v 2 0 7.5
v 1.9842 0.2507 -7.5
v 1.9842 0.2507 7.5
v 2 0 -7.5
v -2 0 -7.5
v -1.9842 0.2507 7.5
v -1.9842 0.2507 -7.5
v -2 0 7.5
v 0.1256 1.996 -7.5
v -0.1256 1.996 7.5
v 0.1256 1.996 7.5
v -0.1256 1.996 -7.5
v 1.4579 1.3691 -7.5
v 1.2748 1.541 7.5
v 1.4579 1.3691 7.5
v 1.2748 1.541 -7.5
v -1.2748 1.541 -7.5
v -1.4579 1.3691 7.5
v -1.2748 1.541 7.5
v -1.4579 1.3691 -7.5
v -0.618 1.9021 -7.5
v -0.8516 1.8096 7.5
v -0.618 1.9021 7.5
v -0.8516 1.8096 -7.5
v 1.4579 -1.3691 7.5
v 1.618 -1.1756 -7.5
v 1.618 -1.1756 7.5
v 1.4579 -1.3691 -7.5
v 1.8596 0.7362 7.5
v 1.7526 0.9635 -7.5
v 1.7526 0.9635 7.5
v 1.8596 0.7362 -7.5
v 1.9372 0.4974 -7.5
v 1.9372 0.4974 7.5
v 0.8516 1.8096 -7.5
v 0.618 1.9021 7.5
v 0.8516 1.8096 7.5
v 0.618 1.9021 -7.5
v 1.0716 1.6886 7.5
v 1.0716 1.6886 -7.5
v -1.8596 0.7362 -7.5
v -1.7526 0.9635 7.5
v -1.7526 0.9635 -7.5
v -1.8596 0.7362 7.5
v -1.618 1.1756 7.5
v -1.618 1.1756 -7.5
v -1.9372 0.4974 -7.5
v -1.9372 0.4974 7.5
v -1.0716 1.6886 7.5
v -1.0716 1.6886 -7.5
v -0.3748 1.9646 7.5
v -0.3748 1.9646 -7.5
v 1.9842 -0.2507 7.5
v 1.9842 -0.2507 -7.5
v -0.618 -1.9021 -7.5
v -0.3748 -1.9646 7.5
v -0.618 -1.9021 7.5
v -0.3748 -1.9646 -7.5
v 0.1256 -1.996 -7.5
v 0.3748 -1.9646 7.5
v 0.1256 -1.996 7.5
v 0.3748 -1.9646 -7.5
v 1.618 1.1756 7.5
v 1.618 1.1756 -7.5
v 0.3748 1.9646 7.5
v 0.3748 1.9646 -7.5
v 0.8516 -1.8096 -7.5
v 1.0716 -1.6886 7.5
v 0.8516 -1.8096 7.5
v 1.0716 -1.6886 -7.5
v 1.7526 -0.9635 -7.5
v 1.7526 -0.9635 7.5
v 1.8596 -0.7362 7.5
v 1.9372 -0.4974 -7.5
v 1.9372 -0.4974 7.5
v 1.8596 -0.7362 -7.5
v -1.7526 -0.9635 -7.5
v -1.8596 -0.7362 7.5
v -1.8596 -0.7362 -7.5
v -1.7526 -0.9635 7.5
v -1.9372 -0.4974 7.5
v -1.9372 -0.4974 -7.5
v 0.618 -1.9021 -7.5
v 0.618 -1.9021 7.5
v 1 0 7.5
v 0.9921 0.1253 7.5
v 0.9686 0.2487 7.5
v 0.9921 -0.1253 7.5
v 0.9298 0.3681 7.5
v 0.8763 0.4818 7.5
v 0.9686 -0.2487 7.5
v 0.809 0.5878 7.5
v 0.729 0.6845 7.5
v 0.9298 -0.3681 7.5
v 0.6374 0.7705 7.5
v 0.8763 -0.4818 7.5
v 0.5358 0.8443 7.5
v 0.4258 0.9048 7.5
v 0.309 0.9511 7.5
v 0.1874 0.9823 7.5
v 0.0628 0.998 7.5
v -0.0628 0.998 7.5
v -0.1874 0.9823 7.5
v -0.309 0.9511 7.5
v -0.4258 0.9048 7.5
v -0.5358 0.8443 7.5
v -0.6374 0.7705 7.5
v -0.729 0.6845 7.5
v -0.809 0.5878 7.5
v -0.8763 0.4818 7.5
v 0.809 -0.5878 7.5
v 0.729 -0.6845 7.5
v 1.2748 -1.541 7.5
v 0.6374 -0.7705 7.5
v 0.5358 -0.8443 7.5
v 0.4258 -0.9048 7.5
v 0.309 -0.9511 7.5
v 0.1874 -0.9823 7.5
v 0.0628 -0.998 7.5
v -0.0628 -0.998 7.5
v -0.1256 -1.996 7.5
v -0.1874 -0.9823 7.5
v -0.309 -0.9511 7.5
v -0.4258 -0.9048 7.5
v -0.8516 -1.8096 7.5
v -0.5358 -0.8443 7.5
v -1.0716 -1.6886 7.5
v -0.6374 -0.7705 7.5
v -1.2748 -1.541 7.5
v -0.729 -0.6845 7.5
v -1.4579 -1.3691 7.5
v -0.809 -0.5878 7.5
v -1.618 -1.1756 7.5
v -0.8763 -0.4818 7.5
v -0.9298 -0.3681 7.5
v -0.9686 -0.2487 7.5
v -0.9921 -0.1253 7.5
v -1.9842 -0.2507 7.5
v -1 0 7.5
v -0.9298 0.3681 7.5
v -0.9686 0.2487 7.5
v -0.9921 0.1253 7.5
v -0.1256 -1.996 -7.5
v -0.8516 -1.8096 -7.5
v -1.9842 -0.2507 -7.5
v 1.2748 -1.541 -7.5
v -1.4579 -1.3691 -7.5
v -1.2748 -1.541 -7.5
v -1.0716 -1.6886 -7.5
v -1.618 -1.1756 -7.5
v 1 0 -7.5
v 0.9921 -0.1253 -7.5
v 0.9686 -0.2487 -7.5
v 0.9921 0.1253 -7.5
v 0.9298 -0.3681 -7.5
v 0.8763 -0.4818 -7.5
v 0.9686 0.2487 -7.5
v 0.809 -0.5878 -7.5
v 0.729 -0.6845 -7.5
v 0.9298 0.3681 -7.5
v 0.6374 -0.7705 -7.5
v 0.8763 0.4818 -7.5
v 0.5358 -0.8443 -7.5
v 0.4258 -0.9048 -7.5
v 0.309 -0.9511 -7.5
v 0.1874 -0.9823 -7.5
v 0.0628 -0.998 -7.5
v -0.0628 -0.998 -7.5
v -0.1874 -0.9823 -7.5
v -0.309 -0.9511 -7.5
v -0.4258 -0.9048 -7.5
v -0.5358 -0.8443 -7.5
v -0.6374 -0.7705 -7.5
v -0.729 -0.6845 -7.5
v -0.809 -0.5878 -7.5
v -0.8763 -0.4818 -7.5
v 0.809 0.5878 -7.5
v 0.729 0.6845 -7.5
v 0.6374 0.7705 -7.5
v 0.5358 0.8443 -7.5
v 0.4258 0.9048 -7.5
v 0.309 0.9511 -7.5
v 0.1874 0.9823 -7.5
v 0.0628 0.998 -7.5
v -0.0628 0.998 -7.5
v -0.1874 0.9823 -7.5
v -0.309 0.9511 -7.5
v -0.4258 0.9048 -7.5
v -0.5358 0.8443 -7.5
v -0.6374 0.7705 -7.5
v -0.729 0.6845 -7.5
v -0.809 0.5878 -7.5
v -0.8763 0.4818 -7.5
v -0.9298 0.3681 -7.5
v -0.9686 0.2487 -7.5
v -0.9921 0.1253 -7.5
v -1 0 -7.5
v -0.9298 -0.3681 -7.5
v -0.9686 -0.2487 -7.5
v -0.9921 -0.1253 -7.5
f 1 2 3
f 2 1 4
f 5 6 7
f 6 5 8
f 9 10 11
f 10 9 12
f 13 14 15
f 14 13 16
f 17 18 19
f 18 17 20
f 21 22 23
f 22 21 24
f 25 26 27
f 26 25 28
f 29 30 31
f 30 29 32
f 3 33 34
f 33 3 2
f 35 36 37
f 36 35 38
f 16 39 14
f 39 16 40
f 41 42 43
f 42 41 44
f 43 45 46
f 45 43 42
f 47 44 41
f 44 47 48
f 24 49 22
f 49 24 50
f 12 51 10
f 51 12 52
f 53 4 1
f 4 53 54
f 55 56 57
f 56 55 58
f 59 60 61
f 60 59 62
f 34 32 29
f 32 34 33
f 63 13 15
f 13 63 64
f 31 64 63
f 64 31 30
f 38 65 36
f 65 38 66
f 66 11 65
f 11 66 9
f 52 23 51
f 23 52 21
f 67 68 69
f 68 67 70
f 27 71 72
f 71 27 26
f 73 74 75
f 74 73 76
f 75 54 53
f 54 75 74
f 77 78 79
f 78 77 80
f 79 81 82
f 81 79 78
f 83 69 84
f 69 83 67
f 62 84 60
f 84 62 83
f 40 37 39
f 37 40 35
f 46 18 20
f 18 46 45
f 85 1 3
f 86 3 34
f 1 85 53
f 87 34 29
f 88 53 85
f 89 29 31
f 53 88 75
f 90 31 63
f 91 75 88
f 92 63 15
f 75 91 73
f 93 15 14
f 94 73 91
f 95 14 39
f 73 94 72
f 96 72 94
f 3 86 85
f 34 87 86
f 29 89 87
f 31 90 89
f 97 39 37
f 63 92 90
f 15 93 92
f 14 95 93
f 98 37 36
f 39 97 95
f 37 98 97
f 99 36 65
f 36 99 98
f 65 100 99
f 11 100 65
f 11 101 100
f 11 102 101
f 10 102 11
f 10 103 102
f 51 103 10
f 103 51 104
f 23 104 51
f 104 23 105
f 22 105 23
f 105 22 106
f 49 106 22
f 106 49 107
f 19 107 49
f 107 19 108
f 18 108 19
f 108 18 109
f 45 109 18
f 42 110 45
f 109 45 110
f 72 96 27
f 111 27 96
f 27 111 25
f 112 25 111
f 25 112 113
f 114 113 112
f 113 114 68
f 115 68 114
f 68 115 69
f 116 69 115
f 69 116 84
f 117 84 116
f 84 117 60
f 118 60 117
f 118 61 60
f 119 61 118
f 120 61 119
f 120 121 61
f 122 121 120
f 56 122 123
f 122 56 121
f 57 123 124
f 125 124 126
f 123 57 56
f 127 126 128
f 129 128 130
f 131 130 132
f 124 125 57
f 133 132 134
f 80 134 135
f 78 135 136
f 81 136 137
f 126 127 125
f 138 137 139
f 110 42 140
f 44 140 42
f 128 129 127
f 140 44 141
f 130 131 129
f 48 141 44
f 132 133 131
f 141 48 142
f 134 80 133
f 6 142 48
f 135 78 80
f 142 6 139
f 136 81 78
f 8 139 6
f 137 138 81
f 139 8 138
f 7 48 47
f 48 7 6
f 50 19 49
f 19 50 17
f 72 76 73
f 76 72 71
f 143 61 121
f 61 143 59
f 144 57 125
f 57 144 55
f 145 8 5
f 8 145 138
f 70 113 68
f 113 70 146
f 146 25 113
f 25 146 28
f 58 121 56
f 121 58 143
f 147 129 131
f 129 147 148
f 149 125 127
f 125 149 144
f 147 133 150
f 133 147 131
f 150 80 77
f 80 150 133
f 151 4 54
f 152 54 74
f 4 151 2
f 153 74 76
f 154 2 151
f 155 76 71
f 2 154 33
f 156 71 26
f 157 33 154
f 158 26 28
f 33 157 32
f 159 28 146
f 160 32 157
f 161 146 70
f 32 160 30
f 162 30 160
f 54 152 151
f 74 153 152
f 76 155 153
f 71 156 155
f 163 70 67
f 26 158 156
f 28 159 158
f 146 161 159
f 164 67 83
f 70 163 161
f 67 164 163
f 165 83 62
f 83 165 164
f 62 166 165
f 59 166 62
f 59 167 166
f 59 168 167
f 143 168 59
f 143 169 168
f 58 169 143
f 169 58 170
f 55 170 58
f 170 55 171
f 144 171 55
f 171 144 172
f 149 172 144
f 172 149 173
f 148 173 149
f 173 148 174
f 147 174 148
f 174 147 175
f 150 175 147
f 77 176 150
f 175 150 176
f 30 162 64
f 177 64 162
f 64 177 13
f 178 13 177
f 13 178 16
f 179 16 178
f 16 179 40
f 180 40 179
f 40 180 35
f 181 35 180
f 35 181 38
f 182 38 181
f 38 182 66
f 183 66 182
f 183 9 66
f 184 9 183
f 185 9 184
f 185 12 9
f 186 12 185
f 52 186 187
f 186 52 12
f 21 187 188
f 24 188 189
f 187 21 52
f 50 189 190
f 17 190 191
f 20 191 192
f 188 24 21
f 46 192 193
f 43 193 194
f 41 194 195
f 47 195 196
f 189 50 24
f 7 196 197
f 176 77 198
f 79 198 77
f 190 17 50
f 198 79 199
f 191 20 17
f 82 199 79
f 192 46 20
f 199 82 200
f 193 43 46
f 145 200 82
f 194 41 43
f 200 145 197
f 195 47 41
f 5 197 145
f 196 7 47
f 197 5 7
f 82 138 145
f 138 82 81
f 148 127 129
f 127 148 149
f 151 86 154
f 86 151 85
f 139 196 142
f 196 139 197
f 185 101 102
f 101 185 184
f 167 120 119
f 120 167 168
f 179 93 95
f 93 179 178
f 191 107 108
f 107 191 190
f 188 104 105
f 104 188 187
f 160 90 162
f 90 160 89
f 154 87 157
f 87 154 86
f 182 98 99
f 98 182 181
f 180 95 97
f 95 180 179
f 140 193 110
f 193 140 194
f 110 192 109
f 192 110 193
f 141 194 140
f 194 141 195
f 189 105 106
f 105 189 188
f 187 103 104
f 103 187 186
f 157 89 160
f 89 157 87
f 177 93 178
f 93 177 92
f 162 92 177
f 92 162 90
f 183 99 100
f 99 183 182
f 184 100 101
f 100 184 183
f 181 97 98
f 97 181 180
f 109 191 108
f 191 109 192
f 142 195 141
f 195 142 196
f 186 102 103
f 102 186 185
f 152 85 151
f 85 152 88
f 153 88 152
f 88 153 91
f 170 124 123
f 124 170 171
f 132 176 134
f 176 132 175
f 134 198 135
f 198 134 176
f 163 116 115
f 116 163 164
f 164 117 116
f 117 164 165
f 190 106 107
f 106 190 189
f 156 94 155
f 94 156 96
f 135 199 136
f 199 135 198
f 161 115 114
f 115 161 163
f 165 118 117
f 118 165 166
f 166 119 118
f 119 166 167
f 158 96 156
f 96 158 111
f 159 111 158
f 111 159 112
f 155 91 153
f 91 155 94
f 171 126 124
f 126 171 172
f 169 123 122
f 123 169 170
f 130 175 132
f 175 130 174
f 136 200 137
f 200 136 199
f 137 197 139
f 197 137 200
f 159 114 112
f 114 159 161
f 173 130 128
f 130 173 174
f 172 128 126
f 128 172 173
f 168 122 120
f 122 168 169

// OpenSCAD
$fn = 50;


difference() {
	union() {
		translate(v = [0, 0, -7.5000000000]) {
			cylinder(h = 15, r = 2.0000000000);
		}
	}
	union() {
		translate(v = [0, 0, -100.0000000000]) {
			cylinder(h = 200, r = 1.0000000000);
		}
	}
}
